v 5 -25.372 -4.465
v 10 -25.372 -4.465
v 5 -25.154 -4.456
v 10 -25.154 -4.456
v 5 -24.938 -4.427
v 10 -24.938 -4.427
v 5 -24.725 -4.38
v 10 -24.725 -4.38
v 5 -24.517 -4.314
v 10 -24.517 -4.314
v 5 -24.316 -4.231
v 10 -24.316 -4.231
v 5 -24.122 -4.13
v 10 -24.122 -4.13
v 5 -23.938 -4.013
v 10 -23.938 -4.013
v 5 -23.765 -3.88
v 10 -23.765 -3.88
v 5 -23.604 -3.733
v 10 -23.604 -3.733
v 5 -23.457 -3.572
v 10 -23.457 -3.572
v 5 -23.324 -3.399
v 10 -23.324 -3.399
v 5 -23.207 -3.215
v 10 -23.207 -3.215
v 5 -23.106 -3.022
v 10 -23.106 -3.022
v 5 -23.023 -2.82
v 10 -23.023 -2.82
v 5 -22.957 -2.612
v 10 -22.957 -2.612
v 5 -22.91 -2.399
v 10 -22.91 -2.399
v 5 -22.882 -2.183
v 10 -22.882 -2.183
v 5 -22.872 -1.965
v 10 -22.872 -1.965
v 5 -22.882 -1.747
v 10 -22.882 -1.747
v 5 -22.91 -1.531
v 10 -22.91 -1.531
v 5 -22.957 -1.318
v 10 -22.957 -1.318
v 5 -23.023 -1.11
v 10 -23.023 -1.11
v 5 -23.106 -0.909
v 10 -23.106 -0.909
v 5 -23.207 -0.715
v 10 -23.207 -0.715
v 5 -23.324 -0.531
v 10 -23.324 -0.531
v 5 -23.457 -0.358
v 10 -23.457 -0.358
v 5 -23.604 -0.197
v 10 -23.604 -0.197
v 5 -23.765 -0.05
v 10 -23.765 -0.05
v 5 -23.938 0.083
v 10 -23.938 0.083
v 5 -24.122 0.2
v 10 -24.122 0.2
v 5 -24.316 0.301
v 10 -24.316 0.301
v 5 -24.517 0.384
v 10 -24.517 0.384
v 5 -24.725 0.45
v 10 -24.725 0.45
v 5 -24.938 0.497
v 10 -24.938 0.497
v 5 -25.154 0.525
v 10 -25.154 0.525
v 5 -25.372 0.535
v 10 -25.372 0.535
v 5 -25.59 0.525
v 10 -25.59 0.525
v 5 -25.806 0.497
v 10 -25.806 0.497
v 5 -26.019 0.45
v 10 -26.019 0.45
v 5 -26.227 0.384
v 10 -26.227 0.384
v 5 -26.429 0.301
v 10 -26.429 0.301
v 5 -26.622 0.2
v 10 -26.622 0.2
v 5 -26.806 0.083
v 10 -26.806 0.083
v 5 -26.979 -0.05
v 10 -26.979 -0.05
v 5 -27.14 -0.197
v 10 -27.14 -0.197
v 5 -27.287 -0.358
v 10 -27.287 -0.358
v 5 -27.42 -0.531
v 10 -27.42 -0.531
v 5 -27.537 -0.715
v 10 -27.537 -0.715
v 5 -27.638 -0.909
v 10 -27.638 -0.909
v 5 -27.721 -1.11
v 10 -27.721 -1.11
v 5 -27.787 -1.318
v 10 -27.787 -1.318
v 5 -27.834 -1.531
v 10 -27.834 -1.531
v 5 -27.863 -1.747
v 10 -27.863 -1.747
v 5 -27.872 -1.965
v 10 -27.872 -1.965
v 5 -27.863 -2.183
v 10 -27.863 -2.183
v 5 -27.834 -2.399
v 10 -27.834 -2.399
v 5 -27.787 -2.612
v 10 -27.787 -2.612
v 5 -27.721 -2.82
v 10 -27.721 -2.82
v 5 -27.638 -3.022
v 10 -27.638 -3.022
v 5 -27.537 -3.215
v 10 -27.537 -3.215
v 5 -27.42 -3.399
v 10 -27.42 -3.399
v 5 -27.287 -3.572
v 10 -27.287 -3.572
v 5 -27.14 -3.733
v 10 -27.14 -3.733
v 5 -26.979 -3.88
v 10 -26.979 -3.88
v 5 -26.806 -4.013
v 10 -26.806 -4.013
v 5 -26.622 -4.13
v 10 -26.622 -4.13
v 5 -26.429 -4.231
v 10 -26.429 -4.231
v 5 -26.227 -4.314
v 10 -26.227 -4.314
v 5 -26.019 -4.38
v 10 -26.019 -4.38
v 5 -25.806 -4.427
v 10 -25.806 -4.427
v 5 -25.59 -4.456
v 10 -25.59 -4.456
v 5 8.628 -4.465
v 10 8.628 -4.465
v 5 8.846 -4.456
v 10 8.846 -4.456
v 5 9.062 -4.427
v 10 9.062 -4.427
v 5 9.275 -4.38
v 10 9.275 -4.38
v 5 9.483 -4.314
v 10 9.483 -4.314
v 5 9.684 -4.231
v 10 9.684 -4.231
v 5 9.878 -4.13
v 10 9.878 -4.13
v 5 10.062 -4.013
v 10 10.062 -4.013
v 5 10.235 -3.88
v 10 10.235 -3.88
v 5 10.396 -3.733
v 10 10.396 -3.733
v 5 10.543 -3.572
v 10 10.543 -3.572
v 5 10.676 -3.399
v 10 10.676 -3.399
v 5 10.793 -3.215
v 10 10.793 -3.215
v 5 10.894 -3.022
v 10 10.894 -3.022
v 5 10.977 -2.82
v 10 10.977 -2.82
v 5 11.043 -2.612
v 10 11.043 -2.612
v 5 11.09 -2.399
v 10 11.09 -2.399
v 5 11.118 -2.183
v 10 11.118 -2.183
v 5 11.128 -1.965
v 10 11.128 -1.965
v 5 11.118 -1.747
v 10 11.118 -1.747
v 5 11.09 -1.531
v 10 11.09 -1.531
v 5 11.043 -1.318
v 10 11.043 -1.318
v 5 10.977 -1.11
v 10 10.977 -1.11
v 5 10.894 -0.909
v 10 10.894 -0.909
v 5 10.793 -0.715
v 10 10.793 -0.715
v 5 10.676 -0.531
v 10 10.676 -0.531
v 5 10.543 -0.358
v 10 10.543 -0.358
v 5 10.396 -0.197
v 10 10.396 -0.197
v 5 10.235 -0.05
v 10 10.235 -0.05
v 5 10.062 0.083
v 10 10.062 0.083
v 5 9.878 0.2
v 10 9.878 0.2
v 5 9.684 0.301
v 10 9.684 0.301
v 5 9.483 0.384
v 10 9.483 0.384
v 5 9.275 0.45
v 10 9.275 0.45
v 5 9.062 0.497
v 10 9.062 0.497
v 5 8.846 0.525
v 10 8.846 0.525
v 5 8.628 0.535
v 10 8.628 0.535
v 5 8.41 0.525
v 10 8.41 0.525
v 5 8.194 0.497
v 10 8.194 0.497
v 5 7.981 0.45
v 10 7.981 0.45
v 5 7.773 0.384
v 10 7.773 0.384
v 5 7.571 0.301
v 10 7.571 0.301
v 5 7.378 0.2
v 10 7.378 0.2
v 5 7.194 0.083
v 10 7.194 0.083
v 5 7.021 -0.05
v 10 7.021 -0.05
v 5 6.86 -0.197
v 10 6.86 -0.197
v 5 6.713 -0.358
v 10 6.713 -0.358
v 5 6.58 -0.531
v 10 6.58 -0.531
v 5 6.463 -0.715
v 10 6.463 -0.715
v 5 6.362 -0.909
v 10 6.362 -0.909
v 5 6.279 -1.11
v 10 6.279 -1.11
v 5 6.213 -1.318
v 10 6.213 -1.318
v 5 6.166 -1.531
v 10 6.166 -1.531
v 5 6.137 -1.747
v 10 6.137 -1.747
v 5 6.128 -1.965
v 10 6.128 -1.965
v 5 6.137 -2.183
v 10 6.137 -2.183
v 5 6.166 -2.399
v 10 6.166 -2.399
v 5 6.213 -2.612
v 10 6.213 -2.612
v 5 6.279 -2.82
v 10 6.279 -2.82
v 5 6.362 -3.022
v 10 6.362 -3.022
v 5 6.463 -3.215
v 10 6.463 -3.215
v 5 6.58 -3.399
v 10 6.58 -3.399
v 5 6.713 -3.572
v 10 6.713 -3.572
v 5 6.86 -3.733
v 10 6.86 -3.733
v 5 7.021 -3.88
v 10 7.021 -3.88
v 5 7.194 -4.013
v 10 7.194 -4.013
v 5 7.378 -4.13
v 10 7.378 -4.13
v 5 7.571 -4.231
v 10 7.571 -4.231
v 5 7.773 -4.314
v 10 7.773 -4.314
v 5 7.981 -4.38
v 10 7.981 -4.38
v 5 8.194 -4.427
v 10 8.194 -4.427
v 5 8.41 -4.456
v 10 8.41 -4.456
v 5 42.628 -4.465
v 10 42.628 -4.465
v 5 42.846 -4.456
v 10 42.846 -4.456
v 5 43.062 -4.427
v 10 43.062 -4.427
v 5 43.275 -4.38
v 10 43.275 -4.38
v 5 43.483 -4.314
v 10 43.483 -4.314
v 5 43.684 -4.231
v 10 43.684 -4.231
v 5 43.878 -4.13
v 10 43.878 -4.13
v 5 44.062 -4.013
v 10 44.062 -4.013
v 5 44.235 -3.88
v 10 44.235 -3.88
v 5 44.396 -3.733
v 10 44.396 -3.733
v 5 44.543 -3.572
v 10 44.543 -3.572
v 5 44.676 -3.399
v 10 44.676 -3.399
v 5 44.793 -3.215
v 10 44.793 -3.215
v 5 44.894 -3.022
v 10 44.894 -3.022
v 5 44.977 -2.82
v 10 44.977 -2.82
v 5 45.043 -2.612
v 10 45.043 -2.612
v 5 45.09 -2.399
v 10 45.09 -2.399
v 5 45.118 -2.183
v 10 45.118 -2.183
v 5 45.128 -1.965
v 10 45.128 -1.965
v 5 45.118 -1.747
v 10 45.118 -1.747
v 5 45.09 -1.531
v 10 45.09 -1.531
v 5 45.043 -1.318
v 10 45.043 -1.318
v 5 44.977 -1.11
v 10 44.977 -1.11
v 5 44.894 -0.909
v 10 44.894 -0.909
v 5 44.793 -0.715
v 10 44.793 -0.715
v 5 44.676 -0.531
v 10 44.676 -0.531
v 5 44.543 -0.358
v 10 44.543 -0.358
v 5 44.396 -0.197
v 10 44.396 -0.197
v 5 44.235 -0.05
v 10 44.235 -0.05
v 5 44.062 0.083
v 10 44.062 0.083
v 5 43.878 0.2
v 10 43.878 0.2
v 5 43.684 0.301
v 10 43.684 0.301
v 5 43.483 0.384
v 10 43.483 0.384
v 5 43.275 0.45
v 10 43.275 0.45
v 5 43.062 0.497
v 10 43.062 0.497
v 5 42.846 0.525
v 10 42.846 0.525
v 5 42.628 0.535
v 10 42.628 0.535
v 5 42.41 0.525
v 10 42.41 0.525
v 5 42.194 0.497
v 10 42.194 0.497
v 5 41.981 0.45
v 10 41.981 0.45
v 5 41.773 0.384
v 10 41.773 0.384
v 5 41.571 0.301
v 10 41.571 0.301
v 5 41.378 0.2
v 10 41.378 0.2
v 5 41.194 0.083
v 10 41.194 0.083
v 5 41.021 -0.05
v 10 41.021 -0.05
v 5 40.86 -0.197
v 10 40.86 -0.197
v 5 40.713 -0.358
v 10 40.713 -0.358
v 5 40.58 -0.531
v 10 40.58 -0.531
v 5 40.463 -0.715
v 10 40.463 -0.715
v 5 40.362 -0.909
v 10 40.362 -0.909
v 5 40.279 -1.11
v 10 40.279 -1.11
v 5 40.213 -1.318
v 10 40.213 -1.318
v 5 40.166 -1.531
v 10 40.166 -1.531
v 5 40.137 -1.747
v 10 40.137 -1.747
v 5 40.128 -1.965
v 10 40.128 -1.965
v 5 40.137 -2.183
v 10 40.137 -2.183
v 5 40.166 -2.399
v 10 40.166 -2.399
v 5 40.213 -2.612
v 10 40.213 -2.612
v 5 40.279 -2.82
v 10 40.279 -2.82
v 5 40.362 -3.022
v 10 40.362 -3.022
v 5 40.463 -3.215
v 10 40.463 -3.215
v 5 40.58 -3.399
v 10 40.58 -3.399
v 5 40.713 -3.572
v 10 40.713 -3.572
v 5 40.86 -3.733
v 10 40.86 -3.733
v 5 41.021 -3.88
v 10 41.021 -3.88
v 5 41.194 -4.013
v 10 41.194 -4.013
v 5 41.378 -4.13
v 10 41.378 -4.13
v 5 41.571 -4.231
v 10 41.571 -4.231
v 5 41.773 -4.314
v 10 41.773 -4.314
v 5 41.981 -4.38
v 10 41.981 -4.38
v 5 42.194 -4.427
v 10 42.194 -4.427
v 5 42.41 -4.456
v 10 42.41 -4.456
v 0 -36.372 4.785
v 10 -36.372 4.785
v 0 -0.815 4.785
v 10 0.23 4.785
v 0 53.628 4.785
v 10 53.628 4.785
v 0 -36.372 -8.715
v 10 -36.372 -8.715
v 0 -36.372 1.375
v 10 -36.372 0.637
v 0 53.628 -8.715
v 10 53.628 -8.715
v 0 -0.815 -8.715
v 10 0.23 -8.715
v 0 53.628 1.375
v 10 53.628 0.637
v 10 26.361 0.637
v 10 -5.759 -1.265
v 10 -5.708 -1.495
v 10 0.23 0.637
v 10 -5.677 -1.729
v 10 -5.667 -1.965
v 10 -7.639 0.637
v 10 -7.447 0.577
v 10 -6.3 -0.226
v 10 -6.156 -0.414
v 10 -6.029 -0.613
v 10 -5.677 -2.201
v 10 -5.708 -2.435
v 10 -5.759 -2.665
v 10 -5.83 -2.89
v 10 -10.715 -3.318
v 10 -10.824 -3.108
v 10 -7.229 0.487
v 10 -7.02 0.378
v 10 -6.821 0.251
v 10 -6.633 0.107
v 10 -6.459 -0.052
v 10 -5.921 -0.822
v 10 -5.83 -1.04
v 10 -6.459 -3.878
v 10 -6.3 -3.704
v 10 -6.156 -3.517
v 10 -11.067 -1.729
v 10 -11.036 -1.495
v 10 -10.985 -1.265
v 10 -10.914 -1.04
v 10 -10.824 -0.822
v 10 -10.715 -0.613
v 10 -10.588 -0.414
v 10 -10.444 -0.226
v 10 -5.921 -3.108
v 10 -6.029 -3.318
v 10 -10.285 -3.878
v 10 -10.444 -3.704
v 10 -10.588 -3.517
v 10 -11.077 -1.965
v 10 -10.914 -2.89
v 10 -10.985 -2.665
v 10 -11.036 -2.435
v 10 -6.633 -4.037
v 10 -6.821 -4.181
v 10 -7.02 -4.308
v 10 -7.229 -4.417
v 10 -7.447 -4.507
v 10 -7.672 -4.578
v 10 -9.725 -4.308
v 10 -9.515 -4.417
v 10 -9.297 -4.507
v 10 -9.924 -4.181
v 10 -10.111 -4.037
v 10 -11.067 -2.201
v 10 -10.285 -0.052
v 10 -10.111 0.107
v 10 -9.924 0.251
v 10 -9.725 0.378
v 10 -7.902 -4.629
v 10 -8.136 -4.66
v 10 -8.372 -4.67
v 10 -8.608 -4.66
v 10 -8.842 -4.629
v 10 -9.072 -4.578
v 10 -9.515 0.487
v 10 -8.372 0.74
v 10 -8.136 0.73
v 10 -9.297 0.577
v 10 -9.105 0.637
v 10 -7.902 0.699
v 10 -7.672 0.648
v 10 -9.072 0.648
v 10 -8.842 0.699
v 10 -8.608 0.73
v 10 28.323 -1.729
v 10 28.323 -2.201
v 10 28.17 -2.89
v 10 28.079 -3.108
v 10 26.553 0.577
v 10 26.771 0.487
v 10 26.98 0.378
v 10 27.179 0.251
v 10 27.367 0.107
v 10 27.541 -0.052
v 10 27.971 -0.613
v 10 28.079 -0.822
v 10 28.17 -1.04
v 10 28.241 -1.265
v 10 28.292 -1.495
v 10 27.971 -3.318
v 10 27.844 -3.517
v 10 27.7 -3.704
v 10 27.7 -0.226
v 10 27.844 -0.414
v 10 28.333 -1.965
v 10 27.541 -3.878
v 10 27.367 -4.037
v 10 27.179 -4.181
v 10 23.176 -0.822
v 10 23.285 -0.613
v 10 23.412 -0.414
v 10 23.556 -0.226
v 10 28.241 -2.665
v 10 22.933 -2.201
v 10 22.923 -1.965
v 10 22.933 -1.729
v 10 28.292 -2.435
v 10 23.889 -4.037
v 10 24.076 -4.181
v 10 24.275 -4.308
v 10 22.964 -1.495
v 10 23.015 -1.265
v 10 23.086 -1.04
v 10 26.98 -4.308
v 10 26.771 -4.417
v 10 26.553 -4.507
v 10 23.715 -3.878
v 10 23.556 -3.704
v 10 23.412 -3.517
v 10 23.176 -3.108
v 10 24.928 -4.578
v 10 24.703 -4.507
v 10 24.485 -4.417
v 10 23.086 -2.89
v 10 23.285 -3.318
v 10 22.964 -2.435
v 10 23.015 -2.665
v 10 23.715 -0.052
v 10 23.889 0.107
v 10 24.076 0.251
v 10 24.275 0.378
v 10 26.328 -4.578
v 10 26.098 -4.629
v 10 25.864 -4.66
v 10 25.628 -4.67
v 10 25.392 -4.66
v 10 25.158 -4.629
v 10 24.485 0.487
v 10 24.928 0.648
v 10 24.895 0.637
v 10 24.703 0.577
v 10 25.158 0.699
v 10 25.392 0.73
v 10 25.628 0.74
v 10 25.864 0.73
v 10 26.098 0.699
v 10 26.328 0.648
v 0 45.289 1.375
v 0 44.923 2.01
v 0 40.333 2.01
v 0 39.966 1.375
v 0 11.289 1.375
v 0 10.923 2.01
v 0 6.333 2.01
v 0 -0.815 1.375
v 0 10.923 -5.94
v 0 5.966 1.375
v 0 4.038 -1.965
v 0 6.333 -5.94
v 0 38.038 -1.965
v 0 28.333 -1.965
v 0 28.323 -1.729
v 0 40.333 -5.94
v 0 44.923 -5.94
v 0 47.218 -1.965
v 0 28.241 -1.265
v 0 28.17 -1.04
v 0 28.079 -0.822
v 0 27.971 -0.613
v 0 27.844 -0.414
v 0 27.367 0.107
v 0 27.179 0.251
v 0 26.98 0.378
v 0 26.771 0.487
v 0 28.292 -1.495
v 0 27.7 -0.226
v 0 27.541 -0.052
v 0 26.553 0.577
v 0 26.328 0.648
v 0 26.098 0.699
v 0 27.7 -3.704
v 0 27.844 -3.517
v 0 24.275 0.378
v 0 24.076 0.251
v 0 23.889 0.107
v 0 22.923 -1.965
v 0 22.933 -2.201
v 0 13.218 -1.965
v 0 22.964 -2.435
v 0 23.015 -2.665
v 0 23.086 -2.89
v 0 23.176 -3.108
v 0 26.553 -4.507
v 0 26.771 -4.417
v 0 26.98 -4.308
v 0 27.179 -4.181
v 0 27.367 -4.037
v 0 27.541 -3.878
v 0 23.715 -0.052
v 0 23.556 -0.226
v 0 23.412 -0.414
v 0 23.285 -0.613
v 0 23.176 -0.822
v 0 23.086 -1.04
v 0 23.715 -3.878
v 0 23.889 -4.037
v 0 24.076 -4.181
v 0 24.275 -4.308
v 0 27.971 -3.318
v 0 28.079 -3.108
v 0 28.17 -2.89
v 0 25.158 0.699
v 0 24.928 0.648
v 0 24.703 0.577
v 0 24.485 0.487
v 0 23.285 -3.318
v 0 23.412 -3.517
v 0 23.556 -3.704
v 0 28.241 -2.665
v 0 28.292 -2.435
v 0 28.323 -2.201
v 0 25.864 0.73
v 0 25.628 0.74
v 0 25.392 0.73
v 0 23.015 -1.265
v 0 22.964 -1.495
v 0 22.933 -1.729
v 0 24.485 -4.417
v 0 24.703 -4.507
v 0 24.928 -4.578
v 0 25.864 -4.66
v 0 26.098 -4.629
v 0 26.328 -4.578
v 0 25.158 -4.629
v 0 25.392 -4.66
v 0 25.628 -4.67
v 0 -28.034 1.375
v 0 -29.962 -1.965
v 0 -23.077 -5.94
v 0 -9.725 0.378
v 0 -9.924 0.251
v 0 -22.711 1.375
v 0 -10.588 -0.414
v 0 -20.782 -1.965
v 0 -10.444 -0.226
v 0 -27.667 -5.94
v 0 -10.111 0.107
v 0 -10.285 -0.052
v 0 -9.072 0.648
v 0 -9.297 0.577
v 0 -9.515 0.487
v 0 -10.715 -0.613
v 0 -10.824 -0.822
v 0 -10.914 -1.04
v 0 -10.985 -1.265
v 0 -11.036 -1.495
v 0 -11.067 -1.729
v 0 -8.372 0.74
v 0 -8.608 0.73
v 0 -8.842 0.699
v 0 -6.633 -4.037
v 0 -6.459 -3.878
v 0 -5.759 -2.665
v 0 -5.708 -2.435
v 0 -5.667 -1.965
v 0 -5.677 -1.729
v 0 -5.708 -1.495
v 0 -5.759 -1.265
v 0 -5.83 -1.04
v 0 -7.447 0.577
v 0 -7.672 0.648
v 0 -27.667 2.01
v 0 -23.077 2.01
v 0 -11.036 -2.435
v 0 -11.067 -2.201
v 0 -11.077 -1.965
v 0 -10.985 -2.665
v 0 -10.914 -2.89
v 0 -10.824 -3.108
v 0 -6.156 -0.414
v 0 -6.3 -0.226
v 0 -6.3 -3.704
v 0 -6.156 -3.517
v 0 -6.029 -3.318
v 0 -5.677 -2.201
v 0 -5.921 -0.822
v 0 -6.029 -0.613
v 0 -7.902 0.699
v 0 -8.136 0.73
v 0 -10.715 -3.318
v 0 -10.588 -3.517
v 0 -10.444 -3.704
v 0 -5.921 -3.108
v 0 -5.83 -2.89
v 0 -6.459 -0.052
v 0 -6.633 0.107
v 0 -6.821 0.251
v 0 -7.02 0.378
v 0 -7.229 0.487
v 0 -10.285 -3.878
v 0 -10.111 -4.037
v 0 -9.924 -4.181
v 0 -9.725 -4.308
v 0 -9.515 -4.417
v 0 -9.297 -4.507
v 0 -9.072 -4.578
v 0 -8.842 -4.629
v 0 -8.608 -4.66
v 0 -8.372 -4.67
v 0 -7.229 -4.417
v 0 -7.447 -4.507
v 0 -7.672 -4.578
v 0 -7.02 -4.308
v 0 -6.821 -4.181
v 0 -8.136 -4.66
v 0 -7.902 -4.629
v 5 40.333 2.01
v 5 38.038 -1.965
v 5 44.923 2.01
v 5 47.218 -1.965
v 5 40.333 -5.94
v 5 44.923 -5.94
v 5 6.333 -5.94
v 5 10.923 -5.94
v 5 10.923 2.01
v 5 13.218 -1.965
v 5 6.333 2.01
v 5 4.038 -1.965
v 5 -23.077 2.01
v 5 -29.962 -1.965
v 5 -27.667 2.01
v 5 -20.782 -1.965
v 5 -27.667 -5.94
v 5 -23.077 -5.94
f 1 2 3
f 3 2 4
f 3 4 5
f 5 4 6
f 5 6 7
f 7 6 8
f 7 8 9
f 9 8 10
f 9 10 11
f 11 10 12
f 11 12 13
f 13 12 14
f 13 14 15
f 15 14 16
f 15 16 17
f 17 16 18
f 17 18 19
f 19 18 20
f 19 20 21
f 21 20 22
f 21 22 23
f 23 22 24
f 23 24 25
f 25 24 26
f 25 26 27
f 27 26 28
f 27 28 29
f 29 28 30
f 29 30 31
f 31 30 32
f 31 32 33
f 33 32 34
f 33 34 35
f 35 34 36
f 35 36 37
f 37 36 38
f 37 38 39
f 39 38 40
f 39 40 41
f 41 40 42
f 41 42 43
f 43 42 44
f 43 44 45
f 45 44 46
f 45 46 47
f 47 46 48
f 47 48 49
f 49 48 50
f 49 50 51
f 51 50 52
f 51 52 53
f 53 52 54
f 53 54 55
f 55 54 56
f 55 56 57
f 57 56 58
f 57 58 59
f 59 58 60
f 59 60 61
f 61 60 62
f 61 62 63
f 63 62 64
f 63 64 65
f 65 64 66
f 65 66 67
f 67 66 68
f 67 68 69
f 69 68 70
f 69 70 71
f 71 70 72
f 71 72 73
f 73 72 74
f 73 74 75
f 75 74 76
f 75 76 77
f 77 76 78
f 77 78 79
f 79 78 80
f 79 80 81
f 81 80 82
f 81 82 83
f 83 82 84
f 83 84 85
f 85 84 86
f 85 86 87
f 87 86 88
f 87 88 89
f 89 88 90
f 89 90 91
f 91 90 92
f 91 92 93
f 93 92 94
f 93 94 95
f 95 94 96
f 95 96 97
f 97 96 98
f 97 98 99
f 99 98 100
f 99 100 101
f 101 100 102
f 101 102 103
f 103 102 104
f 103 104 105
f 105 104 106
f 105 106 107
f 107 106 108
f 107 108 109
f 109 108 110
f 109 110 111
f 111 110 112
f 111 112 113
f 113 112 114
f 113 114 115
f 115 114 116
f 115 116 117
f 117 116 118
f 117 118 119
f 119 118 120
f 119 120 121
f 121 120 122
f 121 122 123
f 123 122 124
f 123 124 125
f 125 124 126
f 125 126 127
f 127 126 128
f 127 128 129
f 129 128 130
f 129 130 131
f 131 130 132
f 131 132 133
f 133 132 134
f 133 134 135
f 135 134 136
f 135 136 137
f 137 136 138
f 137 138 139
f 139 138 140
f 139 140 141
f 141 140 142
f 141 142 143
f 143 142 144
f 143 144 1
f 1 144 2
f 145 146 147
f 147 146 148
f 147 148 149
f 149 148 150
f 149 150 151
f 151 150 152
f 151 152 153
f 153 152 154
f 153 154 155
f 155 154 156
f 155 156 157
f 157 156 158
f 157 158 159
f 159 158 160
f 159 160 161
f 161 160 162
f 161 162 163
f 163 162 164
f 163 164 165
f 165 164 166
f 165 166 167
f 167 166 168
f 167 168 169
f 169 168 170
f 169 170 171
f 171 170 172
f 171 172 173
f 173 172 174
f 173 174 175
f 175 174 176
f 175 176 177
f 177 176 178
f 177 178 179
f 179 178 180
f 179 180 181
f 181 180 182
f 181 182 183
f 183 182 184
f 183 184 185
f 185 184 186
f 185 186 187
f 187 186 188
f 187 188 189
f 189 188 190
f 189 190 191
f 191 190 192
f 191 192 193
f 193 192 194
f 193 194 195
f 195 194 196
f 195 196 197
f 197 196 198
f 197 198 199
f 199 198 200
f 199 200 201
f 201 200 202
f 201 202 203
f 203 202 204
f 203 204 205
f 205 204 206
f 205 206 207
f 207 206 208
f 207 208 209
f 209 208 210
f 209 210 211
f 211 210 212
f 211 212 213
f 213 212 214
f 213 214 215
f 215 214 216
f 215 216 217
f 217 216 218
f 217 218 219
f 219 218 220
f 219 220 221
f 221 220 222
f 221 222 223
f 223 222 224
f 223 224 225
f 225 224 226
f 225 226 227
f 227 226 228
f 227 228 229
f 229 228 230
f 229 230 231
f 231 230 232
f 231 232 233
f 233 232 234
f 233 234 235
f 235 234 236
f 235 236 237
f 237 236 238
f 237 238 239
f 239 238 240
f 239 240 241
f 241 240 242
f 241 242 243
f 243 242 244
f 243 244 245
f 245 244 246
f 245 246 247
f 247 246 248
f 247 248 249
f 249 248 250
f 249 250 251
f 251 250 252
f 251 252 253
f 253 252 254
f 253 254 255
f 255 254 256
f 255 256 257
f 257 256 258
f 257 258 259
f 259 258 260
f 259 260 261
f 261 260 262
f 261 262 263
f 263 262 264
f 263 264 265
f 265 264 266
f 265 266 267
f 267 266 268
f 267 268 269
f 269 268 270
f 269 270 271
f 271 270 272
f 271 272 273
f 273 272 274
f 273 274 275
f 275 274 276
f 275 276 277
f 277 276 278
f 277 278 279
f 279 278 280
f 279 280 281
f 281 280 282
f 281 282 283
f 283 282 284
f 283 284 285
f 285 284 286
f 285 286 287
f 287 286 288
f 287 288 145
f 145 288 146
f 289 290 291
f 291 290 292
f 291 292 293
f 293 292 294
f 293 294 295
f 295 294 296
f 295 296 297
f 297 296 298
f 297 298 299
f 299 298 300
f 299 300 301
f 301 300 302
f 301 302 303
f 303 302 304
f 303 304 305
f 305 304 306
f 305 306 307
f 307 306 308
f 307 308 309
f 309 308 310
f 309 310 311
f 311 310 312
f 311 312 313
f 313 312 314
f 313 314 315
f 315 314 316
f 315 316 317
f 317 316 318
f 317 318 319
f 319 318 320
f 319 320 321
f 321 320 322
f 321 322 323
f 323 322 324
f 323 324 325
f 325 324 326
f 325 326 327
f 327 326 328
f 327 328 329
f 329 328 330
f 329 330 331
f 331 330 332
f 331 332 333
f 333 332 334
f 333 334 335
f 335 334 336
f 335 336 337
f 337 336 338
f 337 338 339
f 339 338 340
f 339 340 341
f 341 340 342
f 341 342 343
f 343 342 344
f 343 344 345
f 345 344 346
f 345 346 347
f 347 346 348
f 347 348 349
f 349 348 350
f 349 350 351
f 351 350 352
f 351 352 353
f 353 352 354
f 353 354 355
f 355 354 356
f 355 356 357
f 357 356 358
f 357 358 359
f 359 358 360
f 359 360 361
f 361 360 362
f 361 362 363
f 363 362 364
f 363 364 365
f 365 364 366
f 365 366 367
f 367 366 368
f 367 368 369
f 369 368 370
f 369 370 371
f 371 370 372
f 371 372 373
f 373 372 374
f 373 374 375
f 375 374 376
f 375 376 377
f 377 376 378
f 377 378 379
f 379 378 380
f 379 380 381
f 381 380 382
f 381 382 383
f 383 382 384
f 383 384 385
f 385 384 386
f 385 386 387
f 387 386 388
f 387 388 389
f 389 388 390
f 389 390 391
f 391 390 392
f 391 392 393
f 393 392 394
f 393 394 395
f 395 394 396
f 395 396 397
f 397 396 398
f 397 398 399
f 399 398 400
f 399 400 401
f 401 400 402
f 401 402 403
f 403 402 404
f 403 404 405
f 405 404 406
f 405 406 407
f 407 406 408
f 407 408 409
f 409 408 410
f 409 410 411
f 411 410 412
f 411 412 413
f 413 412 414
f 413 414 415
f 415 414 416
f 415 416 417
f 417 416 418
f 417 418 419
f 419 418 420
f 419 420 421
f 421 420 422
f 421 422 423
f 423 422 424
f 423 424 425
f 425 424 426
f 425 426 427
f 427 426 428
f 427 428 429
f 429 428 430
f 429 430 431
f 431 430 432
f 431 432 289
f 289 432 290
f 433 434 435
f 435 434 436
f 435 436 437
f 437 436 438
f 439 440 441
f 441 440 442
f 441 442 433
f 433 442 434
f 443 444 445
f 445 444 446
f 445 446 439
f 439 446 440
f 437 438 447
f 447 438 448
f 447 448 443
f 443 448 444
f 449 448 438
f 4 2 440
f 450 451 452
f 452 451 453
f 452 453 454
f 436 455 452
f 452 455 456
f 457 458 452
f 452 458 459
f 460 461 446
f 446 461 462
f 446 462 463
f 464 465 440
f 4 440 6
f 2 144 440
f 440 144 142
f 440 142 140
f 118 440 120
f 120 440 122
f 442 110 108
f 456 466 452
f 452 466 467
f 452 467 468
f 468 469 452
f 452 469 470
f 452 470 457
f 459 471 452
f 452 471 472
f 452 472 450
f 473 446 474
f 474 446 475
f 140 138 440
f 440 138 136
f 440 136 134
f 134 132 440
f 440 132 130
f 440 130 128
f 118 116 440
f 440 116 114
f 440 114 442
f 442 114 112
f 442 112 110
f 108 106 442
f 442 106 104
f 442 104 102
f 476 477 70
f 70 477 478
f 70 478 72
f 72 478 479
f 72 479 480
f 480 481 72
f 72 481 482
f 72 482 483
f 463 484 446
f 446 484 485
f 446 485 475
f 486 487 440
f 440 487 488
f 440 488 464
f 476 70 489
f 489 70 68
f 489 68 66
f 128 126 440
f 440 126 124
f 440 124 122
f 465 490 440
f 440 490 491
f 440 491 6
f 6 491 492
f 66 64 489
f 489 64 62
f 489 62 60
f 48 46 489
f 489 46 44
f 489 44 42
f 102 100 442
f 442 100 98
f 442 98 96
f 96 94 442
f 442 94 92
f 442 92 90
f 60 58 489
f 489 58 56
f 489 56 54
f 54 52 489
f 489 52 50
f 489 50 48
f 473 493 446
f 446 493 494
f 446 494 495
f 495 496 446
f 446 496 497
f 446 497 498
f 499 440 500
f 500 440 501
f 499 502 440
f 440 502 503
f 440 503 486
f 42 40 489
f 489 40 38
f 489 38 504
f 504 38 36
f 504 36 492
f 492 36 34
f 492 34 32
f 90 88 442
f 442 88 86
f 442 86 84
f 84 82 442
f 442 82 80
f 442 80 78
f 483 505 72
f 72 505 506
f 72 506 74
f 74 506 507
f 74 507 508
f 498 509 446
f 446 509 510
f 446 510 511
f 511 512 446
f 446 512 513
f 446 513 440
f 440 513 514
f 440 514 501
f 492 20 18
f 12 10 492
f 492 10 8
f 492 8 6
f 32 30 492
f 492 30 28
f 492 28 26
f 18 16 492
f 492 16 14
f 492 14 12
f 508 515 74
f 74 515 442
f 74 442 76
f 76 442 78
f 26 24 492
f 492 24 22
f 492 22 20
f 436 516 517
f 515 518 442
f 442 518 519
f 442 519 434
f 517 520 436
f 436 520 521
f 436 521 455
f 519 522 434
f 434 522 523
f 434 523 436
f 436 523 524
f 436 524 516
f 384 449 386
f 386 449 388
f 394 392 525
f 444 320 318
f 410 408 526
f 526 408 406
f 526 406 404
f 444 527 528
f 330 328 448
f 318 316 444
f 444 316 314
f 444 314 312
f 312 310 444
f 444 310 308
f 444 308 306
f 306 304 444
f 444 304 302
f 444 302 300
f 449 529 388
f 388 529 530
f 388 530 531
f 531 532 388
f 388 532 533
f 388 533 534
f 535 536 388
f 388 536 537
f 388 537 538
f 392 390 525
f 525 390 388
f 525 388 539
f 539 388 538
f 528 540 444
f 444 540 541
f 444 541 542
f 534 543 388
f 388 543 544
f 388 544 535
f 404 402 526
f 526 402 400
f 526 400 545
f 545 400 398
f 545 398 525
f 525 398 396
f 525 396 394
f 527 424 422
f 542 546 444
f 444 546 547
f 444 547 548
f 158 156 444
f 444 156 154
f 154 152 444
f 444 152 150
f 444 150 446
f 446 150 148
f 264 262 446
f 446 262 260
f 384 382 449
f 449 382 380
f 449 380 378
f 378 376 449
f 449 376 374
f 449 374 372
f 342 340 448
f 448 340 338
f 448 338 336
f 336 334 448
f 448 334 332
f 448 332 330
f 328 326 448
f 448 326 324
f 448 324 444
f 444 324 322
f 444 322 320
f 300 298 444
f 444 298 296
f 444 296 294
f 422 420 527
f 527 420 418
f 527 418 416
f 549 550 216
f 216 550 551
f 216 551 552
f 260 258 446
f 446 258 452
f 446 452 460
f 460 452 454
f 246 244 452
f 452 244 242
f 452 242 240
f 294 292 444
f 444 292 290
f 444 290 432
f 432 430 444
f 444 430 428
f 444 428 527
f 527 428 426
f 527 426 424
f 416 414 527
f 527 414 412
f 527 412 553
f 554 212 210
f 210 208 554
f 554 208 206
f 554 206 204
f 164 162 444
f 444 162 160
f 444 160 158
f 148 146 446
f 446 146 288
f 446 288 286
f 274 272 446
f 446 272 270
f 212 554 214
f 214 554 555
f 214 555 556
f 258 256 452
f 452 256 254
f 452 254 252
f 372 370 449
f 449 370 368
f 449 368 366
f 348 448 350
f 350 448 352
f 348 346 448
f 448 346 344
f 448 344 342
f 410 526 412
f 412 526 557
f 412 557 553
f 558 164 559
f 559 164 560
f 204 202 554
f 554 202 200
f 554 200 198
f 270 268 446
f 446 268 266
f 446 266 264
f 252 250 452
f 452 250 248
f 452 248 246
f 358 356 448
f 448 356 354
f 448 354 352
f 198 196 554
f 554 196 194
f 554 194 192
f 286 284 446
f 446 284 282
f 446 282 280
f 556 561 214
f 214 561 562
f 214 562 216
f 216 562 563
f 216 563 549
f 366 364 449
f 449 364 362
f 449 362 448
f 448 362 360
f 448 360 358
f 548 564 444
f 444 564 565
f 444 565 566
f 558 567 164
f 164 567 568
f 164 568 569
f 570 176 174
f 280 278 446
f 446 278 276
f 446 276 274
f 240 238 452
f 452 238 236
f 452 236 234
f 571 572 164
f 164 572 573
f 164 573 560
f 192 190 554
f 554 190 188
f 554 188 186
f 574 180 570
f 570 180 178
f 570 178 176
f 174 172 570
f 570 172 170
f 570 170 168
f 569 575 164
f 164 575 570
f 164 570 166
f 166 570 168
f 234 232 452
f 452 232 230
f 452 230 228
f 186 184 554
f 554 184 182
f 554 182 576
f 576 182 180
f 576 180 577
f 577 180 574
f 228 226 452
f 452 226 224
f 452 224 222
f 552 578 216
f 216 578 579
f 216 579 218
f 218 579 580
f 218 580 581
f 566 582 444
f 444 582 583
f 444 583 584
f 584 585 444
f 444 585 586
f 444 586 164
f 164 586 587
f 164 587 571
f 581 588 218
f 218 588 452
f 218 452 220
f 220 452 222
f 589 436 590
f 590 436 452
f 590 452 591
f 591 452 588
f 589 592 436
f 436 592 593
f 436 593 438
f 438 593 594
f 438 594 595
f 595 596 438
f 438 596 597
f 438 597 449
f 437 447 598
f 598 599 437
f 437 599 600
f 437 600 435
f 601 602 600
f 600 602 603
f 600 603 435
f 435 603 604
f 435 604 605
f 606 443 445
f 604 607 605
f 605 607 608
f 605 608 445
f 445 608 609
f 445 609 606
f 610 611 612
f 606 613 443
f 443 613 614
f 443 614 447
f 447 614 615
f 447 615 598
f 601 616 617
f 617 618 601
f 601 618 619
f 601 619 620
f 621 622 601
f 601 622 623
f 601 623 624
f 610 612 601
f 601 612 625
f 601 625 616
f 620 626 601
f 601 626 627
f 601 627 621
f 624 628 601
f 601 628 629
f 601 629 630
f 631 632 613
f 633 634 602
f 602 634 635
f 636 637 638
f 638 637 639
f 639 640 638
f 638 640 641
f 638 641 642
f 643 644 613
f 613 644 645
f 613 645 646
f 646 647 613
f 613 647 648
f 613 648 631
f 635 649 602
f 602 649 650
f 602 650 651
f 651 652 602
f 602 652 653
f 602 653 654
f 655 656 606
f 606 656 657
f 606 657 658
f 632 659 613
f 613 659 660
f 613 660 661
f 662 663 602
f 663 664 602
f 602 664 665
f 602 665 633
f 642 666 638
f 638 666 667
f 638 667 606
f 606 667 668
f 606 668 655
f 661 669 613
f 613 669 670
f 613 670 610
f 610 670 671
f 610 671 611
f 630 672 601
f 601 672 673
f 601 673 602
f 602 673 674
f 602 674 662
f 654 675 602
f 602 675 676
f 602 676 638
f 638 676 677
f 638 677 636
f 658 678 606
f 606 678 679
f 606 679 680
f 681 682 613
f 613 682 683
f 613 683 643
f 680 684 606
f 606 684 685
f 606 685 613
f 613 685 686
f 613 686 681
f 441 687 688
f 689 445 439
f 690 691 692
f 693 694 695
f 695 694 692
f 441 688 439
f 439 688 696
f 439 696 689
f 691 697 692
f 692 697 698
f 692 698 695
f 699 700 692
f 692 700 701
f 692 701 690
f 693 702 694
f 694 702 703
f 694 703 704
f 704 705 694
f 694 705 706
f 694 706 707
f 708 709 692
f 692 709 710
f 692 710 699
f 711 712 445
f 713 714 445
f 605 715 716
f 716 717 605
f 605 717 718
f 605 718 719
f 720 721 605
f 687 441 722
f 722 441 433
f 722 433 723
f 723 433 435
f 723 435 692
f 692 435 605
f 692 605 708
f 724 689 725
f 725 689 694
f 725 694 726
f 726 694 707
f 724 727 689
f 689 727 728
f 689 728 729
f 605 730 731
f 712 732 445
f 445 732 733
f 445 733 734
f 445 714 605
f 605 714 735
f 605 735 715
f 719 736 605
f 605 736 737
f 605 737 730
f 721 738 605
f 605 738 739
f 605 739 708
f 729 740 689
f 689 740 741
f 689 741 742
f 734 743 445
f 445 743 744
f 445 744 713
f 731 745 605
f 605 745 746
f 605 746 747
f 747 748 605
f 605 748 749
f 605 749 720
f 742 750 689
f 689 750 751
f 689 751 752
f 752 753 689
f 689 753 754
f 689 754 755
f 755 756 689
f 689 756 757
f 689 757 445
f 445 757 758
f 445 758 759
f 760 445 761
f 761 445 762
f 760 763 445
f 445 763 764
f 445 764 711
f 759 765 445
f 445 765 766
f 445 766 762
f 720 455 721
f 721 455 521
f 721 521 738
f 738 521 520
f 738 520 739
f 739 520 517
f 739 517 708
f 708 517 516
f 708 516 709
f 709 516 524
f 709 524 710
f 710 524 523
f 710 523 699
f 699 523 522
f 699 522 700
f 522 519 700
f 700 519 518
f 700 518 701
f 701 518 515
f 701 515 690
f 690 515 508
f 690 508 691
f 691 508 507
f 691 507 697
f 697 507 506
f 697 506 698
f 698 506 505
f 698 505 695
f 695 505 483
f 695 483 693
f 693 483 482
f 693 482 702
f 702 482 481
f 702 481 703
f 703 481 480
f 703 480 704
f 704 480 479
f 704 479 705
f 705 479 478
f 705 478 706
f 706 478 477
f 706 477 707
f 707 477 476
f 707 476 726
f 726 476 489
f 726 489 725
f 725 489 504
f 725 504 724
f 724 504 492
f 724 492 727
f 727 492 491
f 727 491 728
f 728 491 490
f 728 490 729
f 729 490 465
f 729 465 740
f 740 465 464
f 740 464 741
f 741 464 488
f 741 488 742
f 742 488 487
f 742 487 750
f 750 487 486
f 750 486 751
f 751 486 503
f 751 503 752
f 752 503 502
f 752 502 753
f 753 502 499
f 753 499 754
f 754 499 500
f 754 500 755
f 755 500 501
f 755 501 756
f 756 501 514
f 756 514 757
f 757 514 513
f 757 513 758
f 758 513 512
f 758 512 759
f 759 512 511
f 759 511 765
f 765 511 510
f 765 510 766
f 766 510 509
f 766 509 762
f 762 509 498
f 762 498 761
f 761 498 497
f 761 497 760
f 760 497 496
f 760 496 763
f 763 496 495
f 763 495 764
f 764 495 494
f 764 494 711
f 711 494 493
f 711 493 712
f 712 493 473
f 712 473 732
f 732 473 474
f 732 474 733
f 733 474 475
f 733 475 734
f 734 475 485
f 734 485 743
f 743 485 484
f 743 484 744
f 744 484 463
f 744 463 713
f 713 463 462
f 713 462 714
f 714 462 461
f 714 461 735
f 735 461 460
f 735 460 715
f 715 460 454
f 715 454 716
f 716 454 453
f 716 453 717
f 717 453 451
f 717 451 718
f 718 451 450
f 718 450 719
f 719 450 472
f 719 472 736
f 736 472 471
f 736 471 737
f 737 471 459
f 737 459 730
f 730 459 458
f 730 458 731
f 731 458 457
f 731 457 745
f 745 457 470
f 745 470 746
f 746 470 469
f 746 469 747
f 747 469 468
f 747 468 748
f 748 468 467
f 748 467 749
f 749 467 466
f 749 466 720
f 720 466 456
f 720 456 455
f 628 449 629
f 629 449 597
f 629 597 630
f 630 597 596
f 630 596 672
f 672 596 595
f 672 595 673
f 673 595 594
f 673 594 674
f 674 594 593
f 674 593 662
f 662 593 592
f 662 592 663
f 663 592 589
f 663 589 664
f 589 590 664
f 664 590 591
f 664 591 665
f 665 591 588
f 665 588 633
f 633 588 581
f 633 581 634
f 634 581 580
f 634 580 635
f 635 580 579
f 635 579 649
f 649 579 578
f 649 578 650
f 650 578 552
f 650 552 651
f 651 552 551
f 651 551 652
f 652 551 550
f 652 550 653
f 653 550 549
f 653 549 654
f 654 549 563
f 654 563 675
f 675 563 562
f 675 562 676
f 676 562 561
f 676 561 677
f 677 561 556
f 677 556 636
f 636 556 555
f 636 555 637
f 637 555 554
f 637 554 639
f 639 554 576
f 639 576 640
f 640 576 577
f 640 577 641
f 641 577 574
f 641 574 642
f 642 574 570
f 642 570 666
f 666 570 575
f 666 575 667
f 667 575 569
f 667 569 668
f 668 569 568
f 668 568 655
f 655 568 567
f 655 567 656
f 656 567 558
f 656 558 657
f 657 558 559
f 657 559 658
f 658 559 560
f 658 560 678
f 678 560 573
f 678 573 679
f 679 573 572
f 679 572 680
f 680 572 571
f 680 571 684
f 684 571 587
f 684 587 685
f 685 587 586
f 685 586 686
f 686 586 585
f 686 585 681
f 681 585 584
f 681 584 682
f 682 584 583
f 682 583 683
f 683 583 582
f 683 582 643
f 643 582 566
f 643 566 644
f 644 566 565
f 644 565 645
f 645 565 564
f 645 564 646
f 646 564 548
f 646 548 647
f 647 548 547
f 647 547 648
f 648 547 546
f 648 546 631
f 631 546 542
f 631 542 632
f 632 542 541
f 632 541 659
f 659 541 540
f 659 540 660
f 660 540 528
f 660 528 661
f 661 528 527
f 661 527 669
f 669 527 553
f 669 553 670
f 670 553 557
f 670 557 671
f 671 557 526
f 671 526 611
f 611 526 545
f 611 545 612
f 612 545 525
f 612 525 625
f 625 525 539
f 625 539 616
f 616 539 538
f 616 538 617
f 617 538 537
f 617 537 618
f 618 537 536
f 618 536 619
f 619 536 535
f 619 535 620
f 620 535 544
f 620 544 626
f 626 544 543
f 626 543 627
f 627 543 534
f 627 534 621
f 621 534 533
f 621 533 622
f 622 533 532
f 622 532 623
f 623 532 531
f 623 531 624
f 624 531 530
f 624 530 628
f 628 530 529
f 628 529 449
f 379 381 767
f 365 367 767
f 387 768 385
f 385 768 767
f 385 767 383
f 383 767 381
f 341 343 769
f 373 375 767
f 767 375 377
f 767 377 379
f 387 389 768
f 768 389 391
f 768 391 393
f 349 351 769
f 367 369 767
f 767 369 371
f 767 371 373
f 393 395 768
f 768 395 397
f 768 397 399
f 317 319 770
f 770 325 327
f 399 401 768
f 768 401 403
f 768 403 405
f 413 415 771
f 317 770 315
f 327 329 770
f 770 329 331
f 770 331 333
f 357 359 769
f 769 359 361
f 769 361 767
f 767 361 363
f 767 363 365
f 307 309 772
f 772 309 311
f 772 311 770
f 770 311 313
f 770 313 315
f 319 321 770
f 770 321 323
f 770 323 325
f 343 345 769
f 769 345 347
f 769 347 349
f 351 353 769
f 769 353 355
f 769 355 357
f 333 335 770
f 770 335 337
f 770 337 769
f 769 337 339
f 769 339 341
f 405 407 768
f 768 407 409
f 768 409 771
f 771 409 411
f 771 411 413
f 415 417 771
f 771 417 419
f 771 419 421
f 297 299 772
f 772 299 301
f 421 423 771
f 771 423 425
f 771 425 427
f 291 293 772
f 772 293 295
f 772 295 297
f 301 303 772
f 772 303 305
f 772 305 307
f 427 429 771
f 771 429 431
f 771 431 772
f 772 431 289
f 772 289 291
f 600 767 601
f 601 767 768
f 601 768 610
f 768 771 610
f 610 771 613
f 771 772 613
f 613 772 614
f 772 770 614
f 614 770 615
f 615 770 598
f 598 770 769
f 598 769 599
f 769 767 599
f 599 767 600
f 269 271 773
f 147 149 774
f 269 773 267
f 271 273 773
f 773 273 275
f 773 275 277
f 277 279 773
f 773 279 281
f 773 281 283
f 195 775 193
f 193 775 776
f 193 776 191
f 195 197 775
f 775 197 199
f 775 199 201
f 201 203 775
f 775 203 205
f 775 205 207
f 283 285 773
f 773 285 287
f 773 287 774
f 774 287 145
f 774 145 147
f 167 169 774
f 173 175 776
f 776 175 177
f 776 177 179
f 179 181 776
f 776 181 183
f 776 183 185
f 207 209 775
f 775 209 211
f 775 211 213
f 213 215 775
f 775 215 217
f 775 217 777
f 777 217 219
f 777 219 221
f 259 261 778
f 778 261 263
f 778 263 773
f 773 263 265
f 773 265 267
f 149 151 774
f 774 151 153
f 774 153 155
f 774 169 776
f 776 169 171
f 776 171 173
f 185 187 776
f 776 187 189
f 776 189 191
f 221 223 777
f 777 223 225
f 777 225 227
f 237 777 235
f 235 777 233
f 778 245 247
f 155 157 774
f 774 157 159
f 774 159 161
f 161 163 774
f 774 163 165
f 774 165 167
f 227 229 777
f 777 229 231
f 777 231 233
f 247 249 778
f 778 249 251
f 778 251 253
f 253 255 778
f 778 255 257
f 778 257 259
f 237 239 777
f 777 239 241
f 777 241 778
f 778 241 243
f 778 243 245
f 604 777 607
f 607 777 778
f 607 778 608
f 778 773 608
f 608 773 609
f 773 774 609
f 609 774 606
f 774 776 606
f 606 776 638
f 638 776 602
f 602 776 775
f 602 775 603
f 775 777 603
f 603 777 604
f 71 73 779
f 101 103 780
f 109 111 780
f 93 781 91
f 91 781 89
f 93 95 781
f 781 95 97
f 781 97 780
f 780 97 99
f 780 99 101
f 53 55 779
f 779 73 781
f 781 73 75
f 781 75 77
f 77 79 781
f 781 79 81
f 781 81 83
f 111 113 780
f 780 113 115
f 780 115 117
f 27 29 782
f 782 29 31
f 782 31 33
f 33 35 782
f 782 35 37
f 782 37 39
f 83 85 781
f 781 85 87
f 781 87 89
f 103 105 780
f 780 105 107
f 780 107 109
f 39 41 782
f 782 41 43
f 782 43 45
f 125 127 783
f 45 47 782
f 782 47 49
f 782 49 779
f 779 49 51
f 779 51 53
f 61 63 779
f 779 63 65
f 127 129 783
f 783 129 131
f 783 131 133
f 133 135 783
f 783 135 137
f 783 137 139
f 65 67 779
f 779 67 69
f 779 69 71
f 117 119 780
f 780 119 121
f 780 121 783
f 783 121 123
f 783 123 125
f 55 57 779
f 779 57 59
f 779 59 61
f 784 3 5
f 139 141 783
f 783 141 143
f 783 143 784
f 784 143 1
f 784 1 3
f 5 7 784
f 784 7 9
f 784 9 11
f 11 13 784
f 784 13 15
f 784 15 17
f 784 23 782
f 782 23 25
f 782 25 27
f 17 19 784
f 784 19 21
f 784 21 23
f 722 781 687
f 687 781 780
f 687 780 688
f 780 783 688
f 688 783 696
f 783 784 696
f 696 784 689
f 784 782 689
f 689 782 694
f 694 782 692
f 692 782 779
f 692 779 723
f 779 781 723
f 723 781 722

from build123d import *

# Parameters (mm, degrees)
SKETCH1_W                    = 13.5
SKETCH1_H                    = 90
BOSS_EXTRUDE1_DEPTH          = 10
F_1_4_28_TAPPED_HOLE1_D      = 5.4102
F_5_0_5_DIAMETER_HOLE1_D     = 5
F_5_0_5_DIAMETER_HOLE1_DEPTH = 49.5
F_5_0_5_DIAMETER_HOLE1_TIP   = 1.502151548
CUT_EXTRUDE2_DEPTH           = 5


with BuildPart() as part:
    # Sketch1 → Boss-Extrude1 (new body)
    with BuildSketch(Plane(origin=(0, 0, 0), x_dir=(0, 0, -1), z_dir=(1, 0, 0))):
        with Locations((1.965094474, 8.62782)):
            Rectangle(SKETCH1_W, SKETCH1_H)
    extrude(amount=BOSS_EXTRUDE1_DEPTH)

    # 1/4-28 Tapped Hole1 (through all)
    with Locations(Plane(origin=(10, 0, 0), x_dir=(0, 0, -1), z_dir=(1, 0, 0))):
        with Locations((1.965094474, 25.62782), (1.965094474, -8.37218)):
            Hole(F_1_4_28_TAPPED_HOLE1_D / 2)

    # Ø5.0 (5) Diameter Hole1
    with Locations(Plane(origin=(10, 0, 0), x_dir=(0, 0, -1), z_dir=(1, 0, 0))):
        with Locations((1.965094474, 42.62782), (1.965094474, -25.37218), (1.965094474, 8.62782)):
            Hole(F_5_0_5_DIAMETER_HOLE1_D / 2, depth=F_5_0_5_DIAMETER_HOLE1_DEPTH)
            with Locations((0, 0, -(F_5_0_5_DIAMETER_HOLE1_DEPTH + F_5_0_5_DIAMETER_HOLE1_TIP / 2))):  # 118° drill point
                Cone(0, F_5_0_5_DIAMETER_HOLE1_D / 2, F_5_0_5_DIAMETER_HOLE1_TIP, mode=Mode.SUBTRACT)

    # Sketch7 → Cut-Extrude2 (cut)
    with BuildSketch(Plane.ZY):
        Polygon((2.009905526, 40.33285268), (2.009905526, 44.92278732), (-1.965094474, 47.21775464), (-5.940094474, 44.92278732), (-5.940094474, 40.33285268), (-1.965094474, 38.03788536), align=None)
        Polygon((2.009905526, 6.33285268), (2.009905526, 10.92278732), (-1.965094474, 13.21775464), (-5.940094474, 10.92278732), (-5.940094474, 6.33285268), (-1.965094474, 4.03788536), align=None)
        Polygon((2.009905526, -27.66714732), (2.009905526, -23.07721268), (-1.965094474, -20.78224536), (-5.940094474, -23.07721268), (-5.940094474, -27.66714732), (-1.965094474, -29.96211464), align=None)
    extrude(amount=-CUT_EXTRUDE2_DEPTH, mode=Mode.SUBTRACT)


solid = part.part
